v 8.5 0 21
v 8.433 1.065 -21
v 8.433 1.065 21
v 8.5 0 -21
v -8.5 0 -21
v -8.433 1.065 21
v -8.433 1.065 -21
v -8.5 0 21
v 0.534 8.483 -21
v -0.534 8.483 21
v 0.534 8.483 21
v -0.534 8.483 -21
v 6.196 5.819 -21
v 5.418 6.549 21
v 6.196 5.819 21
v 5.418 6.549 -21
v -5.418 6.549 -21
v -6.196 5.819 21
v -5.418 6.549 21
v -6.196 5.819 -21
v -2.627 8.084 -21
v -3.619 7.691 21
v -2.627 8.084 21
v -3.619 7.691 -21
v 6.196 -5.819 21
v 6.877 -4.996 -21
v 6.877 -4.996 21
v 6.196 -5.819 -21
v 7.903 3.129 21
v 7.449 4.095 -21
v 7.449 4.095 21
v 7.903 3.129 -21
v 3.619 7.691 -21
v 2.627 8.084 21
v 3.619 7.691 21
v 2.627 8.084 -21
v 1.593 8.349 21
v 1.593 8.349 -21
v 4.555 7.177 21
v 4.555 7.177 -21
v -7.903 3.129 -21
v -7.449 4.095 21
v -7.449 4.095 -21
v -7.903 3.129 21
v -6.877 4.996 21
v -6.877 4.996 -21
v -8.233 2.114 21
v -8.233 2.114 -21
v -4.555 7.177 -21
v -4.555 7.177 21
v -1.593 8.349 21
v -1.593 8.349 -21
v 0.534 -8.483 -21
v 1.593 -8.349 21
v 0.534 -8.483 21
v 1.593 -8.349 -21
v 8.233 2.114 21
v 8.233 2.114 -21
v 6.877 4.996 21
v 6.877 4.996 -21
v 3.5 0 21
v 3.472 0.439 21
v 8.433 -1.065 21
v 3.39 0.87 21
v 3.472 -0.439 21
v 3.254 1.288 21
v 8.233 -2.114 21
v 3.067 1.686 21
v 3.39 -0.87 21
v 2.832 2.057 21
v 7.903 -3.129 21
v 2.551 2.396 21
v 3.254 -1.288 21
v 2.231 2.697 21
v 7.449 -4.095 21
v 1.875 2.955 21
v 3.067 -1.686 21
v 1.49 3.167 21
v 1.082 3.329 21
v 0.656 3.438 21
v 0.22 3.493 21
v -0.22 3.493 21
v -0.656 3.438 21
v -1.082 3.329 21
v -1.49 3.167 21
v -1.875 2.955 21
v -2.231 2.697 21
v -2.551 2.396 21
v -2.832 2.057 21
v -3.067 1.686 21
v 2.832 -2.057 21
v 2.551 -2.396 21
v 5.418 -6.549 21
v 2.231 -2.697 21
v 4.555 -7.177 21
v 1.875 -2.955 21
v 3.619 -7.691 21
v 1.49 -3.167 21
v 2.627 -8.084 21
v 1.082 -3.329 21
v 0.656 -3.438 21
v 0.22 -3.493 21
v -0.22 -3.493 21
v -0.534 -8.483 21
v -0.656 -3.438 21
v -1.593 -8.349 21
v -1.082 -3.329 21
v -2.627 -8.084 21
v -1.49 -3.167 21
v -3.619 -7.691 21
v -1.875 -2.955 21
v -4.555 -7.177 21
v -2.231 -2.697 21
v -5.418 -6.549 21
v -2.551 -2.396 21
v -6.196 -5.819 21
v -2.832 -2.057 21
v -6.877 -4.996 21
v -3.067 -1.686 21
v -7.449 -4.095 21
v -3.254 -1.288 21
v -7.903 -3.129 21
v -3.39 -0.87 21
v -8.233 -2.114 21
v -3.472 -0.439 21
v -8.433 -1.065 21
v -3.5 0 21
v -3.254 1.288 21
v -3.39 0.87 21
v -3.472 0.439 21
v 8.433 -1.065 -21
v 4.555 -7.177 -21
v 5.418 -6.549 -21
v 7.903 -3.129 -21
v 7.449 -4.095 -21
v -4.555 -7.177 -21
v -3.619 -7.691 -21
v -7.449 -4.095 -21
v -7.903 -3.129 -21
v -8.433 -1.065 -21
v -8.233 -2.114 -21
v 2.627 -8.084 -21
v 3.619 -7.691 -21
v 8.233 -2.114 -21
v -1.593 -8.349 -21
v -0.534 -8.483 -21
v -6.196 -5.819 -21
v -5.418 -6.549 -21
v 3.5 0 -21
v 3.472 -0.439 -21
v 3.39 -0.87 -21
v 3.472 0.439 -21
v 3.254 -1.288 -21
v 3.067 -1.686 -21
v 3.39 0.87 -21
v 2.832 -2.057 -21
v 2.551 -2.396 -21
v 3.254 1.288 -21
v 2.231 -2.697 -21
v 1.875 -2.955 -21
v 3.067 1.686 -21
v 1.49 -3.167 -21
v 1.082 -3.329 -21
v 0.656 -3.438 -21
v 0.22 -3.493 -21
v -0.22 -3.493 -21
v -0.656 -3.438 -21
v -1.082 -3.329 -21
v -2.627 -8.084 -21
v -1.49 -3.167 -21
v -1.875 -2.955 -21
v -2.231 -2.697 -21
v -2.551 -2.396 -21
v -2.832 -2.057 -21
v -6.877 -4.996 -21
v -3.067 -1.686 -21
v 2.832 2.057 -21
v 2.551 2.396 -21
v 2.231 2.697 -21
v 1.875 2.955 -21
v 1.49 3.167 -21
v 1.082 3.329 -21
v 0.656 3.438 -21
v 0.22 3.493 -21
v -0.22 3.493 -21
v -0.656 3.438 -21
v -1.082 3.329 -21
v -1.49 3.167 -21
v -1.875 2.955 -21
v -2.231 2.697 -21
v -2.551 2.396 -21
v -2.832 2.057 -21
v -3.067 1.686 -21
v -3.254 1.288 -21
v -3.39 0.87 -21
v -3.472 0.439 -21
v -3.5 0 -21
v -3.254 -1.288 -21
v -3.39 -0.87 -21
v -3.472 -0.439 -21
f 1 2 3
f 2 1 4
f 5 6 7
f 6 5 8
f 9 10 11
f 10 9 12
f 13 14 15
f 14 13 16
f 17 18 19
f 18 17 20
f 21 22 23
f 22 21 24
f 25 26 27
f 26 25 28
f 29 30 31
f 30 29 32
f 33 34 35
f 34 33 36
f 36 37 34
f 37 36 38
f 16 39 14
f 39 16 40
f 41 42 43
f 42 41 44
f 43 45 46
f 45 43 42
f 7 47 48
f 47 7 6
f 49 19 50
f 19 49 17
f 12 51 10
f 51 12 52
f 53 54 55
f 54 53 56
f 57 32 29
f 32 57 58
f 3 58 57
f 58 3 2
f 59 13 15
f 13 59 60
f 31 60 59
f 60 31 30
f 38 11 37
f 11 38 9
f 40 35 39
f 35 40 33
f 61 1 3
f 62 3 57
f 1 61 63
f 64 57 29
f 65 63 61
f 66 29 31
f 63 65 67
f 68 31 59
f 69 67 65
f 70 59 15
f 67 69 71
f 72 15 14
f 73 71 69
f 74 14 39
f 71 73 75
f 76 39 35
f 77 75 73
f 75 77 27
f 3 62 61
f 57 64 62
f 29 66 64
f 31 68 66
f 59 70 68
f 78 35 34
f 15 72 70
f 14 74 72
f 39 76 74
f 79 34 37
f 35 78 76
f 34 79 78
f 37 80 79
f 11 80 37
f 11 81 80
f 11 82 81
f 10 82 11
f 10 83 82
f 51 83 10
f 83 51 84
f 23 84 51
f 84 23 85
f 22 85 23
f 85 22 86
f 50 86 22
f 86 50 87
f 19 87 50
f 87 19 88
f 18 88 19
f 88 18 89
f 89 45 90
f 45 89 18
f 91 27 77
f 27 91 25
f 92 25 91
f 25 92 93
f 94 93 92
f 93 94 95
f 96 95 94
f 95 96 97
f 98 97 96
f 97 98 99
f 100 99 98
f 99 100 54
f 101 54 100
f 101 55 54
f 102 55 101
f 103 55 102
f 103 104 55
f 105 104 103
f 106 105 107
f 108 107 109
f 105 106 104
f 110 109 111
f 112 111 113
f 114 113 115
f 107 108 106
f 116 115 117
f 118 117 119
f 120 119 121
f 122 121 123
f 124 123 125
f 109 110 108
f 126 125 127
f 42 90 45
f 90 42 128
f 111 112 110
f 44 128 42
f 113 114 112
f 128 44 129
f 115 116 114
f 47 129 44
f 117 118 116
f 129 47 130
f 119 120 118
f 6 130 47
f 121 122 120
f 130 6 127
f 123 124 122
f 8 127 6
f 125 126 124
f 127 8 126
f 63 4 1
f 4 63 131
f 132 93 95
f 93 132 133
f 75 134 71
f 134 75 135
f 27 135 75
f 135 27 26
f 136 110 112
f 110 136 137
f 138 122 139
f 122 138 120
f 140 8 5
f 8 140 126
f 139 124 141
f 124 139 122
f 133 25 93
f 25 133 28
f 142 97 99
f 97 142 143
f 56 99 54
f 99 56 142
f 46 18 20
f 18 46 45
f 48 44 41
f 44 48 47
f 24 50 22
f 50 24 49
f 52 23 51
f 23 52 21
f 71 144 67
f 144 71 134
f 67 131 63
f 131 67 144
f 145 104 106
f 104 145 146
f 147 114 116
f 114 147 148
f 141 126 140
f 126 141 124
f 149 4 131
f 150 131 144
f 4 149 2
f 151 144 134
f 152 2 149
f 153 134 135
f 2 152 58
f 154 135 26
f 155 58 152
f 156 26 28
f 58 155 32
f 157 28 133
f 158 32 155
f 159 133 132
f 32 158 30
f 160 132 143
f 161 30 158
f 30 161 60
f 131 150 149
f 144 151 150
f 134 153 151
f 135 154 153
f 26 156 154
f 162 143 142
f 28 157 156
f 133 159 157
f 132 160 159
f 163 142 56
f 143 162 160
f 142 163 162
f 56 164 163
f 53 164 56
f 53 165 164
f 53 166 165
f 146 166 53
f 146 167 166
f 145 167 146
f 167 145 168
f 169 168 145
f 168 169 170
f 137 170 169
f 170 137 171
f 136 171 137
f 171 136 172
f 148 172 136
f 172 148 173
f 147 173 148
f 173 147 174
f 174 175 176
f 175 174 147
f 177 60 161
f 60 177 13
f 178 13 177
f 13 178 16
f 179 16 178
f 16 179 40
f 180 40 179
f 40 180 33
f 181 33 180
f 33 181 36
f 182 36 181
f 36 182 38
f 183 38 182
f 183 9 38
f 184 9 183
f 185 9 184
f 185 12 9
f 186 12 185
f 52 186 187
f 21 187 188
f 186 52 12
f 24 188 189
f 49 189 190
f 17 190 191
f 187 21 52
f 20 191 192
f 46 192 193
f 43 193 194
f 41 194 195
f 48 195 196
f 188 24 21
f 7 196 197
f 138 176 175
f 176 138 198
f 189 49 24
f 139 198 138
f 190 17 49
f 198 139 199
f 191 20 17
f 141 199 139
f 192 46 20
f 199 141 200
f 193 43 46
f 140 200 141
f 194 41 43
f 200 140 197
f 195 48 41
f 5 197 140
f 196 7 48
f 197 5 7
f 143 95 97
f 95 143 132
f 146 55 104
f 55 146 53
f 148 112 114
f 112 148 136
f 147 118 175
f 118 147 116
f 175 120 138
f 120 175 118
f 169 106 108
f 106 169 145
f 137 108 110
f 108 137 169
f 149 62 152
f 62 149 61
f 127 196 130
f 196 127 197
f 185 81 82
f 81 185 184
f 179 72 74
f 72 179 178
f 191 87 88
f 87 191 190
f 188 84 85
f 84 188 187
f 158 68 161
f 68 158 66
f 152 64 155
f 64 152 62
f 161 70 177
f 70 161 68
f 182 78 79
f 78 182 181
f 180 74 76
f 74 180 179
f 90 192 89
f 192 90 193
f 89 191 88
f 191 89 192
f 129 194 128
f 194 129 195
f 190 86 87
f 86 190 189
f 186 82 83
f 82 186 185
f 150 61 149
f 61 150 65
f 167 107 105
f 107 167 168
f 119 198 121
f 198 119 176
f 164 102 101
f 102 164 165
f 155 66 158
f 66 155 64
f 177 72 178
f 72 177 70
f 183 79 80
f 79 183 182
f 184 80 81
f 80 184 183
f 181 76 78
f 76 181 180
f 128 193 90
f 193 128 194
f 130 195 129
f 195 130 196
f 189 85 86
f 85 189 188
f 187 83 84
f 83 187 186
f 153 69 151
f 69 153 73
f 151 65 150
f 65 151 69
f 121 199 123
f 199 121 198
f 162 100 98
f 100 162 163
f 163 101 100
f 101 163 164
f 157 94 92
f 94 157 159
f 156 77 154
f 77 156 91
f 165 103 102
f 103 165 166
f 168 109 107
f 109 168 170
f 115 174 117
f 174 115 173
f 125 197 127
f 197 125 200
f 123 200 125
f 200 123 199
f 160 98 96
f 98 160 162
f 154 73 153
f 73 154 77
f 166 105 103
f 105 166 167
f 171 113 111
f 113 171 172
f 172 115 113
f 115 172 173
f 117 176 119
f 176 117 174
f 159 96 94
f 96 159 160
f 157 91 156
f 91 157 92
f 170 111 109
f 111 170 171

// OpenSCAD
$fn = 50;


difference() {
	union() {
		translate(v = [0, 0, -21.0000000000]) {
			cylinder(h = 42, r = 8.5000000000);
		}
	}
	union() {
		translate(v = [0, 0, -100.0000000000]) {
			cylinder(h = 200, r = 3.5000000000);
		}
	}
}
